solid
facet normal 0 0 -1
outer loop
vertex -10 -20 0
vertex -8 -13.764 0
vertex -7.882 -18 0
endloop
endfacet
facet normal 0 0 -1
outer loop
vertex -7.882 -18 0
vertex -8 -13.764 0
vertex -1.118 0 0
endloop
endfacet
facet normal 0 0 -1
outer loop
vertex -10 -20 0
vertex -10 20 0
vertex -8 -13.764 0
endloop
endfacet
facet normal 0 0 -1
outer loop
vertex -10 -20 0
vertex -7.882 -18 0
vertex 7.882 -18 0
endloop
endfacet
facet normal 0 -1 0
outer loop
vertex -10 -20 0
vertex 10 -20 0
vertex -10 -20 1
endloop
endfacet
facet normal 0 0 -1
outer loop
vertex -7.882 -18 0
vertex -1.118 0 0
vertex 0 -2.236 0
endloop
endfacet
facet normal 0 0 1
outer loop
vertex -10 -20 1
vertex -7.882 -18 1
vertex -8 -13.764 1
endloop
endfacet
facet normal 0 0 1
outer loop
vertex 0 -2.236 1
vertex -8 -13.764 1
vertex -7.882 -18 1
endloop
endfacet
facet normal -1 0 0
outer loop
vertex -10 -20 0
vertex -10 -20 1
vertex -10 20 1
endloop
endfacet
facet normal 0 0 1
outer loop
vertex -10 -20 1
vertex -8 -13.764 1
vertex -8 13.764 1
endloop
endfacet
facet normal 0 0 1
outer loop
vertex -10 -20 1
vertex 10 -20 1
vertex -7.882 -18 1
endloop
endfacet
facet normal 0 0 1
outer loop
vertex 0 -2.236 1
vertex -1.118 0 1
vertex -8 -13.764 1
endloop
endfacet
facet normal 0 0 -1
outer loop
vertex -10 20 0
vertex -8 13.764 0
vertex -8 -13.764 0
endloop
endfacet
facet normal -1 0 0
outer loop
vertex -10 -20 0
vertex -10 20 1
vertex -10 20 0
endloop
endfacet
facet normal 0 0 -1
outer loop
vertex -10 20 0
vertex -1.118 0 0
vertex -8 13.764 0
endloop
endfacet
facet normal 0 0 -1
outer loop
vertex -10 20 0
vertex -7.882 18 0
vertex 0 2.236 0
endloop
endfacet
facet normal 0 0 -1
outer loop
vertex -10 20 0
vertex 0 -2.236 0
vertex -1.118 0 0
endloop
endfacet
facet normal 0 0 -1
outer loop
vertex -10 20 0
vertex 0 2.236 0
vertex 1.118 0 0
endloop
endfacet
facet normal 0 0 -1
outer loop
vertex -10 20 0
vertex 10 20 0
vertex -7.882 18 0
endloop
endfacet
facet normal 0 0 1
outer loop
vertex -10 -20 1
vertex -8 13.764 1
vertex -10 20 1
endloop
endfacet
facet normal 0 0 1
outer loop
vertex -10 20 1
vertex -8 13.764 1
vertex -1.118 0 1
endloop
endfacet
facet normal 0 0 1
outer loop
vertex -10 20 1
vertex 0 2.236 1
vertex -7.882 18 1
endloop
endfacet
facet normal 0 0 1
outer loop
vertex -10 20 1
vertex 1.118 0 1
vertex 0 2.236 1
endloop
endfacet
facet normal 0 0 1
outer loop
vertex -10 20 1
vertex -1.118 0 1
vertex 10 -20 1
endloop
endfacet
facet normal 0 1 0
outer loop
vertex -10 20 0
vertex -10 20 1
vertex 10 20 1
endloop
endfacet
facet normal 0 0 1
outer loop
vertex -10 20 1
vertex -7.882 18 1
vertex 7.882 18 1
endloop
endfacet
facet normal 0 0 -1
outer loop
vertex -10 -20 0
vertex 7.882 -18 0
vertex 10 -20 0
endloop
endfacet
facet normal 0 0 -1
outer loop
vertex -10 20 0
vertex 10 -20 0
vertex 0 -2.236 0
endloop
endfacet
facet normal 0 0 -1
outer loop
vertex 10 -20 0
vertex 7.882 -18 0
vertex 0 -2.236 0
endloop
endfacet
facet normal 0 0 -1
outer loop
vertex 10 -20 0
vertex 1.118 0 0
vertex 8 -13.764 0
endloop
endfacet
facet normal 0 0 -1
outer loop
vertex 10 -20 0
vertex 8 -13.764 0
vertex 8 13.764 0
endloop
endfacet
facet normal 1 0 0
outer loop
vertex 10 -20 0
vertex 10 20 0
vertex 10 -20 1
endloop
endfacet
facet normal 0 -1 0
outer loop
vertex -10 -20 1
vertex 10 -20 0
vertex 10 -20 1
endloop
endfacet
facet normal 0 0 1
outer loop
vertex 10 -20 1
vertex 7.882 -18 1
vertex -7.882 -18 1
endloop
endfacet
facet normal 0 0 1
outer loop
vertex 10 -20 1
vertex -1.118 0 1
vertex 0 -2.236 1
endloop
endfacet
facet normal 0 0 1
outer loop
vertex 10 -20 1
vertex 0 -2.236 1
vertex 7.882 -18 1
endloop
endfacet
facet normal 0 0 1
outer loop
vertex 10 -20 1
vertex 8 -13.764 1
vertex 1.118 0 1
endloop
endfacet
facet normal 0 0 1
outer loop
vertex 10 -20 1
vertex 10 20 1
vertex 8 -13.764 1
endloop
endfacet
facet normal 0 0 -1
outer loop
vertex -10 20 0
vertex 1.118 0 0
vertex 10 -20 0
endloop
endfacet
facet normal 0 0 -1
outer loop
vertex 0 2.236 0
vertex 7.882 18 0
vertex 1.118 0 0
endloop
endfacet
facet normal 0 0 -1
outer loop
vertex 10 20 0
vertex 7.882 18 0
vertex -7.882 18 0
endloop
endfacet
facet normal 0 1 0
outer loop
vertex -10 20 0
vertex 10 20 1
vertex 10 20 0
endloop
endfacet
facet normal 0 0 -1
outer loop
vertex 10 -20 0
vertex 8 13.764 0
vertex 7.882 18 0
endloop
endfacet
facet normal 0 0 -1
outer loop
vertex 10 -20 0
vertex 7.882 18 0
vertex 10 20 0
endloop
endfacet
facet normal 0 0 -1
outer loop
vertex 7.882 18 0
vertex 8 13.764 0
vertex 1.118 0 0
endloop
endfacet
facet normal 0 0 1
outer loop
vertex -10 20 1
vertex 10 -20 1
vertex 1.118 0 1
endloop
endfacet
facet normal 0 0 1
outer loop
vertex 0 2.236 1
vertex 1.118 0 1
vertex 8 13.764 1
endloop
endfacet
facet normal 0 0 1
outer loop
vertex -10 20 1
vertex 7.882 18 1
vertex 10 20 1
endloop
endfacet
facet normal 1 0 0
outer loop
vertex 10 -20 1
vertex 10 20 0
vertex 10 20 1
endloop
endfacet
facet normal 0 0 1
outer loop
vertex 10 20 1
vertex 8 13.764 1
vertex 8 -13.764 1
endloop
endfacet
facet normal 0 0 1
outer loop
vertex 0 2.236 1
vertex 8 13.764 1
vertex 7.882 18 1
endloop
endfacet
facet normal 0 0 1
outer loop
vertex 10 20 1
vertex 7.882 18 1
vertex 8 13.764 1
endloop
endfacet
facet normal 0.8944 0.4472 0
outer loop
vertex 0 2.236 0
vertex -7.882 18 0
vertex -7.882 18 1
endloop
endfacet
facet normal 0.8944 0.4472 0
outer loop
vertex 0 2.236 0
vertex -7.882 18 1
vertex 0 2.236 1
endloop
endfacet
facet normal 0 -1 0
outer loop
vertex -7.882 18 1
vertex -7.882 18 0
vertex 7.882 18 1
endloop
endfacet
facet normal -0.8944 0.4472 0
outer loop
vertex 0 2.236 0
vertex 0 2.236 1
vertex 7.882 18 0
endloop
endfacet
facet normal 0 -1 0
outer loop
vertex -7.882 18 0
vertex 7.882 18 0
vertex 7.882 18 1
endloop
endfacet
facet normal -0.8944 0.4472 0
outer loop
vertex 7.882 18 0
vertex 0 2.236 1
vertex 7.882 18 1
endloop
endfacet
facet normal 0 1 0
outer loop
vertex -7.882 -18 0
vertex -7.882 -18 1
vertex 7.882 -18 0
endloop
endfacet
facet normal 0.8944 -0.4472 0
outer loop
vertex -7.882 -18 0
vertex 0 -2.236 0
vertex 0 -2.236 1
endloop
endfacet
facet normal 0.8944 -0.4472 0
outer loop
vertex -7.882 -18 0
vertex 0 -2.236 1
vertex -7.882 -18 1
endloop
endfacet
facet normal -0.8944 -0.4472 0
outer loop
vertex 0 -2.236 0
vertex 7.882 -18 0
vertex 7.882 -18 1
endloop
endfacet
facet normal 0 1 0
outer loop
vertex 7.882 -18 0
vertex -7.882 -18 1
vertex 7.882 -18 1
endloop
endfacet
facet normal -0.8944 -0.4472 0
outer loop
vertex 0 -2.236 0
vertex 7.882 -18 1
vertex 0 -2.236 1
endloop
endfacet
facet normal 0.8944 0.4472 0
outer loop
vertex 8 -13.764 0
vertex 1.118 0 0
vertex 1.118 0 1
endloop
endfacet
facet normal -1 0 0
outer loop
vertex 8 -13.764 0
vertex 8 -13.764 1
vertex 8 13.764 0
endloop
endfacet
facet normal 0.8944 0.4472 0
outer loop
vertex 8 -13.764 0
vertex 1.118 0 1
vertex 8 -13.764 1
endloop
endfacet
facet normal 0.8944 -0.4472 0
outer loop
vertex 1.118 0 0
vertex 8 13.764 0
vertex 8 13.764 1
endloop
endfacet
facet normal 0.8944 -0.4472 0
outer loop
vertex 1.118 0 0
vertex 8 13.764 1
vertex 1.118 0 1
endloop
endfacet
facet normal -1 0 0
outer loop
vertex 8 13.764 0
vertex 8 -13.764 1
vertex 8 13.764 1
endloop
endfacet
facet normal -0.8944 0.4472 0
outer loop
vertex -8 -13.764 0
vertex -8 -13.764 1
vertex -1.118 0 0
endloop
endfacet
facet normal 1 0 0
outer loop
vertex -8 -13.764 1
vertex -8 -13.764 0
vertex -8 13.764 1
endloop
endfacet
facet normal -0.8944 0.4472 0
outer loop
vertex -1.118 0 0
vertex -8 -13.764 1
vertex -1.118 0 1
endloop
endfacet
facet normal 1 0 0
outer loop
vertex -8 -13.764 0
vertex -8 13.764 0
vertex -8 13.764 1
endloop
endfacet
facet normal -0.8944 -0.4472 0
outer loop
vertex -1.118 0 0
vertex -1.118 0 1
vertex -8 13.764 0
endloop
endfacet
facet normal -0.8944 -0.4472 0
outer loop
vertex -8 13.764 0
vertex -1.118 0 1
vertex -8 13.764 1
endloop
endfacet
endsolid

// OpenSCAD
// plate_20x40x1_x_v1_2: 20x40x1, 外框边宽 2 + 对角筋宽 2 (同 build_stl.py)
W=20; H=40; T=1; RIB=2;
linear_extrude(T) {
  difference() { square([W,H],center=true); square([W-2*RIB,H-2*RIB],center=true); }
  intersection() {
    square([W,H],center=true);
    for (s=[-1,1]) rotate(s*atan2(H,W)) square([2*sqrt(W*W+H*H),RIB],center=true);
  }
}
